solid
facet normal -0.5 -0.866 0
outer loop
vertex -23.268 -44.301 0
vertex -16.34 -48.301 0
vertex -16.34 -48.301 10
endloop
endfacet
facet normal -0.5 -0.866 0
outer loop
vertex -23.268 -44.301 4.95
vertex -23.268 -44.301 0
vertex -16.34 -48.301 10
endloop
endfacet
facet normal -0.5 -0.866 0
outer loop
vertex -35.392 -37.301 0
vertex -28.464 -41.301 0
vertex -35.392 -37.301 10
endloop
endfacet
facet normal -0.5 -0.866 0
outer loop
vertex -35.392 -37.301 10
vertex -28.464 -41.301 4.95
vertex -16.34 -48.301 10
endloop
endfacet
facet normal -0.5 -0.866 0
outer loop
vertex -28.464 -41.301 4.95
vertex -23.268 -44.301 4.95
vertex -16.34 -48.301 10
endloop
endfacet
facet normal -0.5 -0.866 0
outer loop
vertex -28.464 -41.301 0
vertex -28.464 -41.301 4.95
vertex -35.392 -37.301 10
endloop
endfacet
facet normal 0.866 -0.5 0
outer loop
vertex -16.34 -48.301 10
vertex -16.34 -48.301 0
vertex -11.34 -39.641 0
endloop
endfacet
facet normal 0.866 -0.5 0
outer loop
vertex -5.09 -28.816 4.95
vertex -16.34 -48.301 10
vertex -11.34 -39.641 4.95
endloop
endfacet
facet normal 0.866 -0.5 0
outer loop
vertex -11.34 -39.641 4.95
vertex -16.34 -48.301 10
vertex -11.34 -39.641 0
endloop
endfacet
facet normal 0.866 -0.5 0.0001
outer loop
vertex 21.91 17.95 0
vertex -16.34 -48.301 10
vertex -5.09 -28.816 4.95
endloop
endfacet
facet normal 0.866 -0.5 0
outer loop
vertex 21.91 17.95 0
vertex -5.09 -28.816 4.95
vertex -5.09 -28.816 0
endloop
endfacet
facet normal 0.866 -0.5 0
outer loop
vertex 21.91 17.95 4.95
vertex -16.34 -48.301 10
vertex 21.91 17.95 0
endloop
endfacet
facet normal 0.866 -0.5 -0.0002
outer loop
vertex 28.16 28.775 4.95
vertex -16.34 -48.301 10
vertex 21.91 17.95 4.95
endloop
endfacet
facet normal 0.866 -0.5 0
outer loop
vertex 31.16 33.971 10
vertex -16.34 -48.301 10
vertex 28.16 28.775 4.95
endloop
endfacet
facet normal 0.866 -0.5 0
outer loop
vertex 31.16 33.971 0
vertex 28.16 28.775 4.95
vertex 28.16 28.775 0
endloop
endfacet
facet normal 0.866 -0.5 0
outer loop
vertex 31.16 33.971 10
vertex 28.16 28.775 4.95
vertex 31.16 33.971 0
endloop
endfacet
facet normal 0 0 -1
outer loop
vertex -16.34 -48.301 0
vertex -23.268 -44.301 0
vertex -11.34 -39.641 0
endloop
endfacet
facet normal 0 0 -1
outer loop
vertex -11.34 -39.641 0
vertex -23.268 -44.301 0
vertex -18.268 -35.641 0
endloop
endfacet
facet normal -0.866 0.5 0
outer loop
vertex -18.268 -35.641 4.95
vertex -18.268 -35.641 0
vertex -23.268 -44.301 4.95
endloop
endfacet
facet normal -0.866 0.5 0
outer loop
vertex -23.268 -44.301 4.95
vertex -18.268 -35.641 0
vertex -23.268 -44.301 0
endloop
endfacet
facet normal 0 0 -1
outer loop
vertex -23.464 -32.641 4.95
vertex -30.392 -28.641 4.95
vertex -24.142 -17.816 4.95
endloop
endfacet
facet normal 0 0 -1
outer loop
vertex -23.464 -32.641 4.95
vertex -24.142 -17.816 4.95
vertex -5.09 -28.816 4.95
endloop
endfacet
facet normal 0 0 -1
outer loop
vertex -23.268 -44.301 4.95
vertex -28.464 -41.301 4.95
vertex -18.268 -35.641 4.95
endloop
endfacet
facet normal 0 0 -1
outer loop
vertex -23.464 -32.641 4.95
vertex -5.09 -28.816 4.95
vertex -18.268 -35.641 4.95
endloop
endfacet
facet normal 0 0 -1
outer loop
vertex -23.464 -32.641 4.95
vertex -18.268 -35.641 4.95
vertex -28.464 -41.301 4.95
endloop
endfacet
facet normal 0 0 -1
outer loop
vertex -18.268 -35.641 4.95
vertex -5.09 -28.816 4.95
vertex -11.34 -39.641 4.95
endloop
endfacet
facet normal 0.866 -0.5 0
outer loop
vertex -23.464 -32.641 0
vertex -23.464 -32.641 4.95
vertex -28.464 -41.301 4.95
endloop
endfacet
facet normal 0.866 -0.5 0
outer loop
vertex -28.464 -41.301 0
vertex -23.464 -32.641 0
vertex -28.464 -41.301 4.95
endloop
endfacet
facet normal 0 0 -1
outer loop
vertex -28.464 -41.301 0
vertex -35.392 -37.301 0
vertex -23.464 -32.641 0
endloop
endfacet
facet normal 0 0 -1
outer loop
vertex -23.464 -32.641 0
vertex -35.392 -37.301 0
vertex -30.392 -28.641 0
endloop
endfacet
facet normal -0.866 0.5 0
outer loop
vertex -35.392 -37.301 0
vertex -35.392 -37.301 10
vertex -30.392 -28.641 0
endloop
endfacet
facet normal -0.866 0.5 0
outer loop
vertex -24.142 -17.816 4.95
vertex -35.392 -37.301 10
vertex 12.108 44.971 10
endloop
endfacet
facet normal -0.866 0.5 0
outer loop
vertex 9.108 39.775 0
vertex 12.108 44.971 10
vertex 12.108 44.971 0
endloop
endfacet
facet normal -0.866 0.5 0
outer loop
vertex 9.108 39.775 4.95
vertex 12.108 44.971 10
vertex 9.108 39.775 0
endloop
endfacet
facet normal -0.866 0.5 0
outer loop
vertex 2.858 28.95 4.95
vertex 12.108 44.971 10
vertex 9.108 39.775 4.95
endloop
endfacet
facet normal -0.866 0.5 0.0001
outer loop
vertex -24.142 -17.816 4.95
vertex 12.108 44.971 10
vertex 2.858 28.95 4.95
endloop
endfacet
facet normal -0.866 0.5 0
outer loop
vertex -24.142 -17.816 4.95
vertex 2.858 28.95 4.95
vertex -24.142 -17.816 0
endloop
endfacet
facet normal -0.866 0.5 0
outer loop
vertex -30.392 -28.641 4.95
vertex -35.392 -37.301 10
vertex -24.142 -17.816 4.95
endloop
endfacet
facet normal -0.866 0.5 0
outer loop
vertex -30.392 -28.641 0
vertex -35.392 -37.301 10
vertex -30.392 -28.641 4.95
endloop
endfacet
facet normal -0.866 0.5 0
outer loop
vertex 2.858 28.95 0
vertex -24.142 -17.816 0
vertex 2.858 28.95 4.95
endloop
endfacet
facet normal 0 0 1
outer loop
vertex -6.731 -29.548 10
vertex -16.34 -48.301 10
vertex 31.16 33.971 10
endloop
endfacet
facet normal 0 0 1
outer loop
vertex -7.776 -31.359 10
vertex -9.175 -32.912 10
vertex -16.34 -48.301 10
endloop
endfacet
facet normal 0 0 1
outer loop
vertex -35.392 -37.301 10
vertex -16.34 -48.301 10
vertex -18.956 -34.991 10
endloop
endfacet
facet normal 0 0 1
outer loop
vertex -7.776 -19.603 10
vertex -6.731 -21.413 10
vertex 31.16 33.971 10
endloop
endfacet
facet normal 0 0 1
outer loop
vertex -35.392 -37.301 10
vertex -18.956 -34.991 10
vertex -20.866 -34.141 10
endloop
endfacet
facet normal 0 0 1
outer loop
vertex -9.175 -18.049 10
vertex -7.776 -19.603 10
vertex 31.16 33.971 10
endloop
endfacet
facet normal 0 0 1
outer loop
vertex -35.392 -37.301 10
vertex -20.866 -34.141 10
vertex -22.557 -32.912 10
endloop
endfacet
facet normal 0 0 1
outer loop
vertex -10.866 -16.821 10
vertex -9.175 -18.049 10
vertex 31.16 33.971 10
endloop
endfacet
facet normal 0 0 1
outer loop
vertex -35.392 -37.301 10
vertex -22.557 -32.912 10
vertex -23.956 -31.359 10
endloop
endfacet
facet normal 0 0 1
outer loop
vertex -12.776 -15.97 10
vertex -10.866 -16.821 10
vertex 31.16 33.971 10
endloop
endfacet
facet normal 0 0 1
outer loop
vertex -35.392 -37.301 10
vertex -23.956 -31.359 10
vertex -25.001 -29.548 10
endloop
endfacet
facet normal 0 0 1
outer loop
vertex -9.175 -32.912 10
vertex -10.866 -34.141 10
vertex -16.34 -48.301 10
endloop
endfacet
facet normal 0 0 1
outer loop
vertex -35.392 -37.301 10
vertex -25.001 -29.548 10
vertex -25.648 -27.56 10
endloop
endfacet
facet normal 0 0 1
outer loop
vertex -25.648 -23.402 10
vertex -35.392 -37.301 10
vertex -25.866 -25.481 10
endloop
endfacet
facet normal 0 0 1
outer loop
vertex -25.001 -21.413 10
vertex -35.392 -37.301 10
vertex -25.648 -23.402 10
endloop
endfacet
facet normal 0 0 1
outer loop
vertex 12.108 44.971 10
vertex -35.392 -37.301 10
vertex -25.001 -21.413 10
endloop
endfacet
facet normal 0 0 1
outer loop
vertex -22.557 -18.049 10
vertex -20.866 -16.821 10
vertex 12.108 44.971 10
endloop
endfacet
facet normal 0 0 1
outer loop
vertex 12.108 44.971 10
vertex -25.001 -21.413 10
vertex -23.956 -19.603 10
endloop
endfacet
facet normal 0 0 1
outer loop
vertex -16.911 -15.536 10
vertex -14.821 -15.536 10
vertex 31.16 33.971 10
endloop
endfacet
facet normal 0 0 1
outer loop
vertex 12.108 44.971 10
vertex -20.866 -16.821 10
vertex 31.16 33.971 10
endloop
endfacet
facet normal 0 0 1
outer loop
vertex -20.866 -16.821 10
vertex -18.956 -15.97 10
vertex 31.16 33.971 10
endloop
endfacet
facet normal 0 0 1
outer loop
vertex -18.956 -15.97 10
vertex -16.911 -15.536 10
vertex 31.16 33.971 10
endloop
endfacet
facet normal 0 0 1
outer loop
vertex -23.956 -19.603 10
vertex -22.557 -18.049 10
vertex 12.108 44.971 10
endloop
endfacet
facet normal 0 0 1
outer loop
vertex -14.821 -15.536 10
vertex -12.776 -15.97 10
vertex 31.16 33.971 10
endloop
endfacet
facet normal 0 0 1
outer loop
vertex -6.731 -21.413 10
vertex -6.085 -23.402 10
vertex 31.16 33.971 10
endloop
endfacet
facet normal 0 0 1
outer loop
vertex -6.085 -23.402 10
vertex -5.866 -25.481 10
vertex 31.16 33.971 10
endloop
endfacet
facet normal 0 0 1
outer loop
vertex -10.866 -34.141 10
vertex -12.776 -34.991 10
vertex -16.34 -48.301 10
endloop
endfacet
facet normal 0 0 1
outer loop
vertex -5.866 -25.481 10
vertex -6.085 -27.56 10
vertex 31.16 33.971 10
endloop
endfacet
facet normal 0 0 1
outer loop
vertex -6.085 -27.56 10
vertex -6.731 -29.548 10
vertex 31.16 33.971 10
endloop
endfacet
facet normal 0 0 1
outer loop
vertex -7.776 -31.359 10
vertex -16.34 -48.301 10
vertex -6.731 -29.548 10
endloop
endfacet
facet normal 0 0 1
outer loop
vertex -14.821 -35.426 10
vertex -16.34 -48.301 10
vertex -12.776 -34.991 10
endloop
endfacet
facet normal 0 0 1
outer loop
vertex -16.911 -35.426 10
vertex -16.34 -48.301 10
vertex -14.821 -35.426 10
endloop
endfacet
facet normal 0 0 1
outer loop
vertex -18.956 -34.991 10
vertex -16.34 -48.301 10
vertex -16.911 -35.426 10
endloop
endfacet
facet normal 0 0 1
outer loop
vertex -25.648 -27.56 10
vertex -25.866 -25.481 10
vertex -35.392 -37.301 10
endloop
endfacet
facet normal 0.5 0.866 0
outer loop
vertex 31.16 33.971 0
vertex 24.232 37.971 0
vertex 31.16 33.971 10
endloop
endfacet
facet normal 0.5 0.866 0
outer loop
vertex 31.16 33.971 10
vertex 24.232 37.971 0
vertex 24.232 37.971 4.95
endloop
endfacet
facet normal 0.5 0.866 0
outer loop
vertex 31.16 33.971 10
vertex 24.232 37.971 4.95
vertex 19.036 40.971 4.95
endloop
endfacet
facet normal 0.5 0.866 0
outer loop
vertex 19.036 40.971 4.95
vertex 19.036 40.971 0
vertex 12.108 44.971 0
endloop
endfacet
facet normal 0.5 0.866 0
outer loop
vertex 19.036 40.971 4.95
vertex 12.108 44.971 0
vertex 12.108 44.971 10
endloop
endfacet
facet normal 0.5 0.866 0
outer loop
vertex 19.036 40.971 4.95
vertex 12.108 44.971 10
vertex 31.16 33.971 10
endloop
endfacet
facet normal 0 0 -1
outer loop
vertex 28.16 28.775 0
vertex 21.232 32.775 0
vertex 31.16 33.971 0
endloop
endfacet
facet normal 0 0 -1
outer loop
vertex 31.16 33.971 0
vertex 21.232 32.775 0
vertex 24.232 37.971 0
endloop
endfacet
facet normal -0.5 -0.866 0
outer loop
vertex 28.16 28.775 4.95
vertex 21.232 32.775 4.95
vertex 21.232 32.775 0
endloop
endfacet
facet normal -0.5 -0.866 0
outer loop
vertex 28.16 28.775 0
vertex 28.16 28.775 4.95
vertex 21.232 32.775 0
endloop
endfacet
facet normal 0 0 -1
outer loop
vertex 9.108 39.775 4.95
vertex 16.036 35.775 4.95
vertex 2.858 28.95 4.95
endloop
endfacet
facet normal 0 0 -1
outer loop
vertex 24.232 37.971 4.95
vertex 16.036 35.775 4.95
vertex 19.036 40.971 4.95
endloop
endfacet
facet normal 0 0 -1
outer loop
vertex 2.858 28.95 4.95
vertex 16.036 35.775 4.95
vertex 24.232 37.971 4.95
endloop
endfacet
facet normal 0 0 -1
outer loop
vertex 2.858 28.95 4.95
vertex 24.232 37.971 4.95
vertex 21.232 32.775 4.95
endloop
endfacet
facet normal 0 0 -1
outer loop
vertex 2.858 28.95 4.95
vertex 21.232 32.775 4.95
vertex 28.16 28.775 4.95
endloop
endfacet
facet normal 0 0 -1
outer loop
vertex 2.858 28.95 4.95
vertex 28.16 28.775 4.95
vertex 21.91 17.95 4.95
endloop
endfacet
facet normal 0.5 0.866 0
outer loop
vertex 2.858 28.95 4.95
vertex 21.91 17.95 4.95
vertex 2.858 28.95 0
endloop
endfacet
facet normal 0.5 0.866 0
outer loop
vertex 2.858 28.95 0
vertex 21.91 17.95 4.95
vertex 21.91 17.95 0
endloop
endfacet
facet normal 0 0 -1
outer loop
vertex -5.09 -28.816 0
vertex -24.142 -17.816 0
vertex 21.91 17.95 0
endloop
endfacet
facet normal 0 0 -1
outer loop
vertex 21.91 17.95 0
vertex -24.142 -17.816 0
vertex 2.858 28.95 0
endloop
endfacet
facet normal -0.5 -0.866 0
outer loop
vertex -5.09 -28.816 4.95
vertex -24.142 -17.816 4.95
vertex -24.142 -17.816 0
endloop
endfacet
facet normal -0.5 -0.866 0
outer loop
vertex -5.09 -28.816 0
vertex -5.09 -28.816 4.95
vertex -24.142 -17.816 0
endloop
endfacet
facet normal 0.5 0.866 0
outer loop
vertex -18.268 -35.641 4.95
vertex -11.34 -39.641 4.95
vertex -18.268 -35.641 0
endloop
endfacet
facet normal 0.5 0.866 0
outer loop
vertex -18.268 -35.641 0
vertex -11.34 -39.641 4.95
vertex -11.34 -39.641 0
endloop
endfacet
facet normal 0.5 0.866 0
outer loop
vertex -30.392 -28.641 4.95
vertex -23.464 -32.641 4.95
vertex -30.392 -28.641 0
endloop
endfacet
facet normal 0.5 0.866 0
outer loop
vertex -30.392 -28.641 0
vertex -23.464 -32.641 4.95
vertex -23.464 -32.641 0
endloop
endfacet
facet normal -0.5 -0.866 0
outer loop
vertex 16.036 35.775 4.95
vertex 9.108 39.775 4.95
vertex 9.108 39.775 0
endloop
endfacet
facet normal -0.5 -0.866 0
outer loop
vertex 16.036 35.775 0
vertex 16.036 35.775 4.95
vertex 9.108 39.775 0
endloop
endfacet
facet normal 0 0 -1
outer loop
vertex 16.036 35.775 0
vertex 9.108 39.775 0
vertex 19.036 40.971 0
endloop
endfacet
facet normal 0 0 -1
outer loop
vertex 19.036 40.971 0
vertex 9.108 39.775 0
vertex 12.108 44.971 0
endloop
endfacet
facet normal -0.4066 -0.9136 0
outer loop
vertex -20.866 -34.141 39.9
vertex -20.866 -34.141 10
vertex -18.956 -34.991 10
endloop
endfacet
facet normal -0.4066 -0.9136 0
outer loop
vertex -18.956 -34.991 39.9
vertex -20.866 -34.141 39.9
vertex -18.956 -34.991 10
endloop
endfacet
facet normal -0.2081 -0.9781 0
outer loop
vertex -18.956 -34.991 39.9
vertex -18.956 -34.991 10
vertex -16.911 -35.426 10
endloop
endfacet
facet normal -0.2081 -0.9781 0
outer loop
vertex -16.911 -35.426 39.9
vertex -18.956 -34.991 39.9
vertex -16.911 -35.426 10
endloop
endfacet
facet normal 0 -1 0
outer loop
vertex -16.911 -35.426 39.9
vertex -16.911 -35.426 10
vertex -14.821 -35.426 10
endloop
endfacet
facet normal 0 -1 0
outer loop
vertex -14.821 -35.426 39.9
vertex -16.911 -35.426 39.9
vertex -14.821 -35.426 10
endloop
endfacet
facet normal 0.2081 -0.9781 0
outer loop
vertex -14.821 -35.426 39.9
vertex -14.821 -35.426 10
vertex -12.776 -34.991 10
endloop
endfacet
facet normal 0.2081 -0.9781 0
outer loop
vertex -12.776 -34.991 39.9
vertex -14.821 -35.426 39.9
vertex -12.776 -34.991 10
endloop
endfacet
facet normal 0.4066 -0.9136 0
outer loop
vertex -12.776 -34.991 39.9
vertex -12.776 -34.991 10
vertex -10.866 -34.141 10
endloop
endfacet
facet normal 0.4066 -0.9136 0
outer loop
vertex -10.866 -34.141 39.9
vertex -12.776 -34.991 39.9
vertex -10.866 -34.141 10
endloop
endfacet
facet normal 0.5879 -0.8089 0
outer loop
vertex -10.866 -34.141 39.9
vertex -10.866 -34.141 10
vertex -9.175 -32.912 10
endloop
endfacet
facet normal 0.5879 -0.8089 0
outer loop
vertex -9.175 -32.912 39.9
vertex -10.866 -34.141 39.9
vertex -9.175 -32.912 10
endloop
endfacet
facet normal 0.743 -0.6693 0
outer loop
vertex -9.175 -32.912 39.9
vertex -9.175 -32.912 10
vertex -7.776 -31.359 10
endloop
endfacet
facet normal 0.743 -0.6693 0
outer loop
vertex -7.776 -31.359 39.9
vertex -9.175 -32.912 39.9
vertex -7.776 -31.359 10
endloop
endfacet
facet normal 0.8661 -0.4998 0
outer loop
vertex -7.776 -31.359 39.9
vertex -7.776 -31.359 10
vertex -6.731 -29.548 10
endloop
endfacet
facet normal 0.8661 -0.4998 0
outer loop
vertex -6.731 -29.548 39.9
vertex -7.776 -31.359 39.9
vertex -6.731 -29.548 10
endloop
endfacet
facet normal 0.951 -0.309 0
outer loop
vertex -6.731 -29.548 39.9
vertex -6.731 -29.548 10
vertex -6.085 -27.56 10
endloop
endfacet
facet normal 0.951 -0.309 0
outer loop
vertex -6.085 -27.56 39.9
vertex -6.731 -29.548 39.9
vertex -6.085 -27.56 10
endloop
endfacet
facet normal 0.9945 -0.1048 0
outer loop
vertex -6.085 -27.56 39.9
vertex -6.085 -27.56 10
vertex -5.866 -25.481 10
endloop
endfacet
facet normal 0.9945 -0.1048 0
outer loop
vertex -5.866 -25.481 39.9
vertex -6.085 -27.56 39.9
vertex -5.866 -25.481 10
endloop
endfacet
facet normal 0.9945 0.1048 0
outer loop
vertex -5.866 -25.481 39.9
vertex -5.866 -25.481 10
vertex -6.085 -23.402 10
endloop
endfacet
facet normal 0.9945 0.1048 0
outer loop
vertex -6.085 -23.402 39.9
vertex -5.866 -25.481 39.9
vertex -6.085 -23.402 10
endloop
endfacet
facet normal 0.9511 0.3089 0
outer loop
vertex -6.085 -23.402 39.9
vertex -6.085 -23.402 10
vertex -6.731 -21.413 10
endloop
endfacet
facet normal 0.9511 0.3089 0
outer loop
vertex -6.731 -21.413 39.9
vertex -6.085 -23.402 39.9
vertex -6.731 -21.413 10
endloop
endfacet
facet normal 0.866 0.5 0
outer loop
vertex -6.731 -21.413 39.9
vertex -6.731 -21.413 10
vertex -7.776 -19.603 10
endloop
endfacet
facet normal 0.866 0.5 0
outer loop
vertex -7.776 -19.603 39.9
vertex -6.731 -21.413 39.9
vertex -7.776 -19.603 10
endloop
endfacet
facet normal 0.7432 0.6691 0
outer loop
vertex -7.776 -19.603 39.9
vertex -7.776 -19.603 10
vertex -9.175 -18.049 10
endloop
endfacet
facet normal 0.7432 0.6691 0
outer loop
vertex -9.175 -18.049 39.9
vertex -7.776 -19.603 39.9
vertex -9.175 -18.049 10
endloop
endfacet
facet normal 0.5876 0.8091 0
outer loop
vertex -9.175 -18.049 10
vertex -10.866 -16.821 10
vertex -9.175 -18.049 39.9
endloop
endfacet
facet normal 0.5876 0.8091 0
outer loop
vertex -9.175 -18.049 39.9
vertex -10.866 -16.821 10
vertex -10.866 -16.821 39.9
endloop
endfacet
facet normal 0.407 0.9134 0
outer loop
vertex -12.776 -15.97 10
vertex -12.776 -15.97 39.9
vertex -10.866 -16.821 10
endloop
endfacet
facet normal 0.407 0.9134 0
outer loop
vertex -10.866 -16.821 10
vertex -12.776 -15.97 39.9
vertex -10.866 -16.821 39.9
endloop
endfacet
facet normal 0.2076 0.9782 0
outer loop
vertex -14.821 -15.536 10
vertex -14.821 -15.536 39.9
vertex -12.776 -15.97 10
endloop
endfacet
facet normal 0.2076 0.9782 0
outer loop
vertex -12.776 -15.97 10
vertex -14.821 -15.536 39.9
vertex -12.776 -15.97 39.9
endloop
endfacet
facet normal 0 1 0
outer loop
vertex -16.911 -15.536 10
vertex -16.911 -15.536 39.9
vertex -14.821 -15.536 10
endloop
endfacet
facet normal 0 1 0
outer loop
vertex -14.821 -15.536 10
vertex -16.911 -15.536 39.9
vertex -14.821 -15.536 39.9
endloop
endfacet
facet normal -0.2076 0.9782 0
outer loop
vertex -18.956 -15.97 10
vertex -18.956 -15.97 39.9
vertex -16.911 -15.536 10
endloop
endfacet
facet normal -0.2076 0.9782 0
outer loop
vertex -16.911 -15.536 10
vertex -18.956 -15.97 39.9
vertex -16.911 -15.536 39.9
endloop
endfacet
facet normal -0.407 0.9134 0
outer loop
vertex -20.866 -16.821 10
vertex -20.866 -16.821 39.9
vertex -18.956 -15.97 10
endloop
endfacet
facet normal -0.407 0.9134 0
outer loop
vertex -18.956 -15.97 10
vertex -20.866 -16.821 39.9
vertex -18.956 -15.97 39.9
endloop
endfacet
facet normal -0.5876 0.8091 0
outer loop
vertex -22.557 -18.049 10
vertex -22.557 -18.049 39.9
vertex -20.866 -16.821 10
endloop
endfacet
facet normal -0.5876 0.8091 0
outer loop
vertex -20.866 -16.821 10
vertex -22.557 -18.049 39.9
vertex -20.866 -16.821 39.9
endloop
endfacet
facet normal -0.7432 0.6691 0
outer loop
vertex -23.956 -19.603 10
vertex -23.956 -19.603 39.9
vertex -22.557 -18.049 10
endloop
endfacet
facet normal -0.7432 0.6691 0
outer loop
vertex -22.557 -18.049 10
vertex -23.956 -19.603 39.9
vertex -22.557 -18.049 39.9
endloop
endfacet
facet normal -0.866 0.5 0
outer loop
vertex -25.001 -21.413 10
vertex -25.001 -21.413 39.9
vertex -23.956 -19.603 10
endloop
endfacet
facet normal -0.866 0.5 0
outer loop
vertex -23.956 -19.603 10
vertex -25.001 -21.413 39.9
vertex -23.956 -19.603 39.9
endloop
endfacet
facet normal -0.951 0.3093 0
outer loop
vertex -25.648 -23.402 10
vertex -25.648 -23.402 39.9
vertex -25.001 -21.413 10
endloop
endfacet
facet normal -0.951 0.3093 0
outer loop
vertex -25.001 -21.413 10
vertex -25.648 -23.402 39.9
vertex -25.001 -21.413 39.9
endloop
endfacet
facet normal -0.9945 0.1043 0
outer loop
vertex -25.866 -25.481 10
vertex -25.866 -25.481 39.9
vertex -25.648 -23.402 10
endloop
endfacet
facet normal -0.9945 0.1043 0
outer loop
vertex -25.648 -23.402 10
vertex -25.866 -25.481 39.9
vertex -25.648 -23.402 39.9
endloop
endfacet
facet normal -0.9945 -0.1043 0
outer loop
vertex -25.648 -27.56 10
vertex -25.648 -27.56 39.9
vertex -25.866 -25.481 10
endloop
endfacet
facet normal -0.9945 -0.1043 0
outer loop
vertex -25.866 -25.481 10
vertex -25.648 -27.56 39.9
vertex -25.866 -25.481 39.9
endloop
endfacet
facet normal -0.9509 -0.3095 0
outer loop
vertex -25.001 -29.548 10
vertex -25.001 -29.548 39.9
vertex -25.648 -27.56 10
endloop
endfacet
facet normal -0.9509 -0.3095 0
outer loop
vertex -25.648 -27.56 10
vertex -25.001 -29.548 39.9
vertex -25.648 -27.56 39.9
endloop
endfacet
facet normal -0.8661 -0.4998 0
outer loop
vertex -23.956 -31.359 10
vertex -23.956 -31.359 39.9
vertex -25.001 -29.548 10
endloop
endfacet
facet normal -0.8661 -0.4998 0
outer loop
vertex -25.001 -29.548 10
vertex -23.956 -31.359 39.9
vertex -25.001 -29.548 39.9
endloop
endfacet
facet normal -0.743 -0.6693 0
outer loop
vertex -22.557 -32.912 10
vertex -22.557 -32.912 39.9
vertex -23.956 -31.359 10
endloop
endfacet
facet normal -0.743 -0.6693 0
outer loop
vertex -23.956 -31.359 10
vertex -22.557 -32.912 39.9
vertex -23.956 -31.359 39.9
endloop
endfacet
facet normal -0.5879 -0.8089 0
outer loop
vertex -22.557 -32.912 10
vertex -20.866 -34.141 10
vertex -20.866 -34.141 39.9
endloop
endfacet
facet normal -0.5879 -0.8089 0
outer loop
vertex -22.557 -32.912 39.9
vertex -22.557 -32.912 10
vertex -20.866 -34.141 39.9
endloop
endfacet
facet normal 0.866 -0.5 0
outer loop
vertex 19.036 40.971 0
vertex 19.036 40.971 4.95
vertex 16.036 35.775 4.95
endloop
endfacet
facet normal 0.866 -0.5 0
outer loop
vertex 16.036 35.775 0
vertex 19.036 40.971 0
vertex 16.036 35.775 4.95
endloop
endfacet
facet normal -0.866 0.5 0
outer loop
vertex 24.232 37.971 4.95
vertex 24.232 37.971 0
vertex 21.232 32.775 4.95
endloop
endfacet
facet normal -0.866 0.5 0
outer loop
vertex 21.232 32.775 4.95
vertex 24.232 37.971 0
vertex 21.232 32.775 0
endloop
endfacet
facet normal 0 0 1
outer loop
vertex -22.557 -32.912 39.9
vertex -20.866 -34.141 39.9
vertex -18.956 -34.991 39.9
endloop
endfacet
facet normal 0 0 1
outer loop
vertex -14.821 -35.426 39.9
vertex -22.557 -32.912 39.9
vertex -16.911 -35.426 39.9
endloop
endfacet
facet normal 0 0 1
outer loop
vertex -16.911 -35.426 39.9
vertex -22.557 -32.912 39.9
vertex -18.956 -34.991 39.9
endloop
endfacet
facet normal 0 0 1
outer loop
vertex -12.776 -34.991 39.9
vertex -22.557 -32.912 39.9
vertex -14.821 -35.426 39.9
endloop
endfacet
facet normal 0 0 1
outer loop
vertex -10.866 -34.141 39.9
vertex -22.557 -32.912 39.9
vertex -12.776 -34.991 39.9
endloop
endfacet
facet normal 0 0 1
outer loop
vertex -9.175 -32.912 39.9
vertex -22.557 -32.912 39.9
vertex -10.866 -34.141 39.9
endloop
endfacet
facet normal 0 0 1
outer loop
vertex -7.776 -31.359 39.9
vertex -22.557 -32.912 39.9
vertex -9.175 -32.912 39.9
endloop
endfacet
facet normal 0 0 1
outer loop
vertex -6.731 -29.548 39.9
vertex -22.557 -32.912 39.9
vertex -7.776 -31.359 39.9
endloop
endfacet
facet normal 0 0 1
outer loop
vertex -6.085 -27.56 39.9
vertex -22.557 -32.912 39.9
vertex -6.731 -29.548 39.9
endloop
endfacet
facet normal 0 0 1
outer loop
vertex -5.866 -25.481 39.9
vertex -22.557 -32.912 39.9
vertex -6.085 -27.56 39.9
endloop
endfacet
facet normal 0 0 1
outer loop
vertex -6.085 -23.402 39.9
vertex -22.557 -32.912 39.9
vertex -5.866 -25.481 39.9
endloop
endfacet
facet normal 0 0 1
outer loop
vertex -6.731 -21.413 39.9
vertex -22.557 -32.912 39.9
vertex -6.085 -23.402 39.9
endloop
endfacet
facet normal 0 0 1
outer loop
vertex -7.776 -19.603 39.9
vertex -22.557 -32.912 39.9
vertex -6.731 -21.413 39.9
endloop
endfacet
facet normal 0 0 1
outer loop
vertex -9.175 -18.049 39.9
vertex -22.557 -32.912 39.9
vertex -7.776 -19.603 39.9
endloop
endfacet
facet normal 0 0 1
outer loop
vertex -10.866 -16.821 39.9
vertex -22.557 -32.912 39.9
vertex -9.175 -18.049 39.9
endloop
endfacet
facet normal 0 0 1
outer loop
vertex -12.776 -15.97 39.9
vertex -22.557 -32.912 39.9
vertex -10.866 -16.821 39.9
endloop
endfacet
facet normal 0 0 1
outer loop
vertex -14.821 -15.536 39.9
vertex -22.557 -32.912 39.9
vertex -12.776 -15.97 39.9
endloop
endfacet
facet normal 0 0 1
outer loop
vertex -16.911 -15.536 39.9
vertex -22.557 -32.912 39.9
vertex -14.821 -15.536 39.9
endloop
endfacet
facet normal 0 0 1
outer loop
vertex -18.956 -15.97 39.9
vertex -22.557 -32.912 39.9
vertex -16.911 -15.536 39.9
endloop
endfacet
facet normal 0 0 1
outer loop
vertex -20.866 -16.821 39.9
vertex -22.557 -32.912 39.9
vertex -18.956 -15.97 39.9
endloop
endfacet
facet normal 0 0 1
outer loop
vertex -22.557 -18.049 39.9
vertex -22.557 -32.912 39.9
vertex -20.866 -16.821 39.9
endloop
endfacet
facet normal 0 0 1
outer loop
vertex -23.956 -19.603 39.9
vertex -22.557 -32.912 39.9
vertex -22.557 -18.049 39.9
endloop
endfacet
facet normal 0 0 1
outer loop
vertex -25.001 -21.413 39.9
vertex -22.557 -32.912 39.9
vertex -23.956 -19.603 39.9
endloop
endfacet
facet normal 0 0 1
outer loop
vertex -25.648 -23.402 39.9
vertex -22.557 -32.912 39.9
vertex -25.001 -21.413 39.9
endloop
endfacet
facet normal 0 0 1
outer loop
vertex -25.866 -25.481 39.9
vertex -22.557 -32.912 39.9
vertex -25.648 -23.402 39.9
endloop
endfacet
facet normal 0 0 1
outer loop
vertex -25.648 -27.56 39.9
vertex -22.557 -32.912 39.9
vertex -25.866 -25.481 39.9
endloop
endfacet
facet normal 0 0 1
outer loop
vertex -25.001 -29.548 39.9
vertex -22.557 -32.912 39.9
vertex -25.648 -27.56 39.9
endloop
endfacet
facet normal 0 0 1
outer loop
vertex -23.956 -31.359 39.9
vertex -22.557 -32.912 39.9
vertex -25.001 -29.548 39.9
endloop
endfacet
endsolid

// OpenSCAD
module crank() { 
	rotate([0,0,60])translate([-50,-10,0]) union() {
		difference(){ 
			cube([95,22,10]);
			translate([10,-0.5,-0.05])cube([12.5,23,5]);
			translate([76.5,-0.5,-0.05])cube([12.5,23,5]);
			translate([-0.1,8,-0.05])cube([10.2,6,5]);
			translate([85.1,8,-0.05])cube([10.2,6,5]);
		}
		translate([20,11,9.9])cylinder(30,10,10);
	}
}


//color([0.5,0.5,0.5,1])rotate([0,0,30])translate([1.2,0,72])import_stl("crank.stl",convexity=10);
//color([0.5,0.5,0.5,1])rotate([0,0,30])translate([1.2,0,72]) 
crank();
